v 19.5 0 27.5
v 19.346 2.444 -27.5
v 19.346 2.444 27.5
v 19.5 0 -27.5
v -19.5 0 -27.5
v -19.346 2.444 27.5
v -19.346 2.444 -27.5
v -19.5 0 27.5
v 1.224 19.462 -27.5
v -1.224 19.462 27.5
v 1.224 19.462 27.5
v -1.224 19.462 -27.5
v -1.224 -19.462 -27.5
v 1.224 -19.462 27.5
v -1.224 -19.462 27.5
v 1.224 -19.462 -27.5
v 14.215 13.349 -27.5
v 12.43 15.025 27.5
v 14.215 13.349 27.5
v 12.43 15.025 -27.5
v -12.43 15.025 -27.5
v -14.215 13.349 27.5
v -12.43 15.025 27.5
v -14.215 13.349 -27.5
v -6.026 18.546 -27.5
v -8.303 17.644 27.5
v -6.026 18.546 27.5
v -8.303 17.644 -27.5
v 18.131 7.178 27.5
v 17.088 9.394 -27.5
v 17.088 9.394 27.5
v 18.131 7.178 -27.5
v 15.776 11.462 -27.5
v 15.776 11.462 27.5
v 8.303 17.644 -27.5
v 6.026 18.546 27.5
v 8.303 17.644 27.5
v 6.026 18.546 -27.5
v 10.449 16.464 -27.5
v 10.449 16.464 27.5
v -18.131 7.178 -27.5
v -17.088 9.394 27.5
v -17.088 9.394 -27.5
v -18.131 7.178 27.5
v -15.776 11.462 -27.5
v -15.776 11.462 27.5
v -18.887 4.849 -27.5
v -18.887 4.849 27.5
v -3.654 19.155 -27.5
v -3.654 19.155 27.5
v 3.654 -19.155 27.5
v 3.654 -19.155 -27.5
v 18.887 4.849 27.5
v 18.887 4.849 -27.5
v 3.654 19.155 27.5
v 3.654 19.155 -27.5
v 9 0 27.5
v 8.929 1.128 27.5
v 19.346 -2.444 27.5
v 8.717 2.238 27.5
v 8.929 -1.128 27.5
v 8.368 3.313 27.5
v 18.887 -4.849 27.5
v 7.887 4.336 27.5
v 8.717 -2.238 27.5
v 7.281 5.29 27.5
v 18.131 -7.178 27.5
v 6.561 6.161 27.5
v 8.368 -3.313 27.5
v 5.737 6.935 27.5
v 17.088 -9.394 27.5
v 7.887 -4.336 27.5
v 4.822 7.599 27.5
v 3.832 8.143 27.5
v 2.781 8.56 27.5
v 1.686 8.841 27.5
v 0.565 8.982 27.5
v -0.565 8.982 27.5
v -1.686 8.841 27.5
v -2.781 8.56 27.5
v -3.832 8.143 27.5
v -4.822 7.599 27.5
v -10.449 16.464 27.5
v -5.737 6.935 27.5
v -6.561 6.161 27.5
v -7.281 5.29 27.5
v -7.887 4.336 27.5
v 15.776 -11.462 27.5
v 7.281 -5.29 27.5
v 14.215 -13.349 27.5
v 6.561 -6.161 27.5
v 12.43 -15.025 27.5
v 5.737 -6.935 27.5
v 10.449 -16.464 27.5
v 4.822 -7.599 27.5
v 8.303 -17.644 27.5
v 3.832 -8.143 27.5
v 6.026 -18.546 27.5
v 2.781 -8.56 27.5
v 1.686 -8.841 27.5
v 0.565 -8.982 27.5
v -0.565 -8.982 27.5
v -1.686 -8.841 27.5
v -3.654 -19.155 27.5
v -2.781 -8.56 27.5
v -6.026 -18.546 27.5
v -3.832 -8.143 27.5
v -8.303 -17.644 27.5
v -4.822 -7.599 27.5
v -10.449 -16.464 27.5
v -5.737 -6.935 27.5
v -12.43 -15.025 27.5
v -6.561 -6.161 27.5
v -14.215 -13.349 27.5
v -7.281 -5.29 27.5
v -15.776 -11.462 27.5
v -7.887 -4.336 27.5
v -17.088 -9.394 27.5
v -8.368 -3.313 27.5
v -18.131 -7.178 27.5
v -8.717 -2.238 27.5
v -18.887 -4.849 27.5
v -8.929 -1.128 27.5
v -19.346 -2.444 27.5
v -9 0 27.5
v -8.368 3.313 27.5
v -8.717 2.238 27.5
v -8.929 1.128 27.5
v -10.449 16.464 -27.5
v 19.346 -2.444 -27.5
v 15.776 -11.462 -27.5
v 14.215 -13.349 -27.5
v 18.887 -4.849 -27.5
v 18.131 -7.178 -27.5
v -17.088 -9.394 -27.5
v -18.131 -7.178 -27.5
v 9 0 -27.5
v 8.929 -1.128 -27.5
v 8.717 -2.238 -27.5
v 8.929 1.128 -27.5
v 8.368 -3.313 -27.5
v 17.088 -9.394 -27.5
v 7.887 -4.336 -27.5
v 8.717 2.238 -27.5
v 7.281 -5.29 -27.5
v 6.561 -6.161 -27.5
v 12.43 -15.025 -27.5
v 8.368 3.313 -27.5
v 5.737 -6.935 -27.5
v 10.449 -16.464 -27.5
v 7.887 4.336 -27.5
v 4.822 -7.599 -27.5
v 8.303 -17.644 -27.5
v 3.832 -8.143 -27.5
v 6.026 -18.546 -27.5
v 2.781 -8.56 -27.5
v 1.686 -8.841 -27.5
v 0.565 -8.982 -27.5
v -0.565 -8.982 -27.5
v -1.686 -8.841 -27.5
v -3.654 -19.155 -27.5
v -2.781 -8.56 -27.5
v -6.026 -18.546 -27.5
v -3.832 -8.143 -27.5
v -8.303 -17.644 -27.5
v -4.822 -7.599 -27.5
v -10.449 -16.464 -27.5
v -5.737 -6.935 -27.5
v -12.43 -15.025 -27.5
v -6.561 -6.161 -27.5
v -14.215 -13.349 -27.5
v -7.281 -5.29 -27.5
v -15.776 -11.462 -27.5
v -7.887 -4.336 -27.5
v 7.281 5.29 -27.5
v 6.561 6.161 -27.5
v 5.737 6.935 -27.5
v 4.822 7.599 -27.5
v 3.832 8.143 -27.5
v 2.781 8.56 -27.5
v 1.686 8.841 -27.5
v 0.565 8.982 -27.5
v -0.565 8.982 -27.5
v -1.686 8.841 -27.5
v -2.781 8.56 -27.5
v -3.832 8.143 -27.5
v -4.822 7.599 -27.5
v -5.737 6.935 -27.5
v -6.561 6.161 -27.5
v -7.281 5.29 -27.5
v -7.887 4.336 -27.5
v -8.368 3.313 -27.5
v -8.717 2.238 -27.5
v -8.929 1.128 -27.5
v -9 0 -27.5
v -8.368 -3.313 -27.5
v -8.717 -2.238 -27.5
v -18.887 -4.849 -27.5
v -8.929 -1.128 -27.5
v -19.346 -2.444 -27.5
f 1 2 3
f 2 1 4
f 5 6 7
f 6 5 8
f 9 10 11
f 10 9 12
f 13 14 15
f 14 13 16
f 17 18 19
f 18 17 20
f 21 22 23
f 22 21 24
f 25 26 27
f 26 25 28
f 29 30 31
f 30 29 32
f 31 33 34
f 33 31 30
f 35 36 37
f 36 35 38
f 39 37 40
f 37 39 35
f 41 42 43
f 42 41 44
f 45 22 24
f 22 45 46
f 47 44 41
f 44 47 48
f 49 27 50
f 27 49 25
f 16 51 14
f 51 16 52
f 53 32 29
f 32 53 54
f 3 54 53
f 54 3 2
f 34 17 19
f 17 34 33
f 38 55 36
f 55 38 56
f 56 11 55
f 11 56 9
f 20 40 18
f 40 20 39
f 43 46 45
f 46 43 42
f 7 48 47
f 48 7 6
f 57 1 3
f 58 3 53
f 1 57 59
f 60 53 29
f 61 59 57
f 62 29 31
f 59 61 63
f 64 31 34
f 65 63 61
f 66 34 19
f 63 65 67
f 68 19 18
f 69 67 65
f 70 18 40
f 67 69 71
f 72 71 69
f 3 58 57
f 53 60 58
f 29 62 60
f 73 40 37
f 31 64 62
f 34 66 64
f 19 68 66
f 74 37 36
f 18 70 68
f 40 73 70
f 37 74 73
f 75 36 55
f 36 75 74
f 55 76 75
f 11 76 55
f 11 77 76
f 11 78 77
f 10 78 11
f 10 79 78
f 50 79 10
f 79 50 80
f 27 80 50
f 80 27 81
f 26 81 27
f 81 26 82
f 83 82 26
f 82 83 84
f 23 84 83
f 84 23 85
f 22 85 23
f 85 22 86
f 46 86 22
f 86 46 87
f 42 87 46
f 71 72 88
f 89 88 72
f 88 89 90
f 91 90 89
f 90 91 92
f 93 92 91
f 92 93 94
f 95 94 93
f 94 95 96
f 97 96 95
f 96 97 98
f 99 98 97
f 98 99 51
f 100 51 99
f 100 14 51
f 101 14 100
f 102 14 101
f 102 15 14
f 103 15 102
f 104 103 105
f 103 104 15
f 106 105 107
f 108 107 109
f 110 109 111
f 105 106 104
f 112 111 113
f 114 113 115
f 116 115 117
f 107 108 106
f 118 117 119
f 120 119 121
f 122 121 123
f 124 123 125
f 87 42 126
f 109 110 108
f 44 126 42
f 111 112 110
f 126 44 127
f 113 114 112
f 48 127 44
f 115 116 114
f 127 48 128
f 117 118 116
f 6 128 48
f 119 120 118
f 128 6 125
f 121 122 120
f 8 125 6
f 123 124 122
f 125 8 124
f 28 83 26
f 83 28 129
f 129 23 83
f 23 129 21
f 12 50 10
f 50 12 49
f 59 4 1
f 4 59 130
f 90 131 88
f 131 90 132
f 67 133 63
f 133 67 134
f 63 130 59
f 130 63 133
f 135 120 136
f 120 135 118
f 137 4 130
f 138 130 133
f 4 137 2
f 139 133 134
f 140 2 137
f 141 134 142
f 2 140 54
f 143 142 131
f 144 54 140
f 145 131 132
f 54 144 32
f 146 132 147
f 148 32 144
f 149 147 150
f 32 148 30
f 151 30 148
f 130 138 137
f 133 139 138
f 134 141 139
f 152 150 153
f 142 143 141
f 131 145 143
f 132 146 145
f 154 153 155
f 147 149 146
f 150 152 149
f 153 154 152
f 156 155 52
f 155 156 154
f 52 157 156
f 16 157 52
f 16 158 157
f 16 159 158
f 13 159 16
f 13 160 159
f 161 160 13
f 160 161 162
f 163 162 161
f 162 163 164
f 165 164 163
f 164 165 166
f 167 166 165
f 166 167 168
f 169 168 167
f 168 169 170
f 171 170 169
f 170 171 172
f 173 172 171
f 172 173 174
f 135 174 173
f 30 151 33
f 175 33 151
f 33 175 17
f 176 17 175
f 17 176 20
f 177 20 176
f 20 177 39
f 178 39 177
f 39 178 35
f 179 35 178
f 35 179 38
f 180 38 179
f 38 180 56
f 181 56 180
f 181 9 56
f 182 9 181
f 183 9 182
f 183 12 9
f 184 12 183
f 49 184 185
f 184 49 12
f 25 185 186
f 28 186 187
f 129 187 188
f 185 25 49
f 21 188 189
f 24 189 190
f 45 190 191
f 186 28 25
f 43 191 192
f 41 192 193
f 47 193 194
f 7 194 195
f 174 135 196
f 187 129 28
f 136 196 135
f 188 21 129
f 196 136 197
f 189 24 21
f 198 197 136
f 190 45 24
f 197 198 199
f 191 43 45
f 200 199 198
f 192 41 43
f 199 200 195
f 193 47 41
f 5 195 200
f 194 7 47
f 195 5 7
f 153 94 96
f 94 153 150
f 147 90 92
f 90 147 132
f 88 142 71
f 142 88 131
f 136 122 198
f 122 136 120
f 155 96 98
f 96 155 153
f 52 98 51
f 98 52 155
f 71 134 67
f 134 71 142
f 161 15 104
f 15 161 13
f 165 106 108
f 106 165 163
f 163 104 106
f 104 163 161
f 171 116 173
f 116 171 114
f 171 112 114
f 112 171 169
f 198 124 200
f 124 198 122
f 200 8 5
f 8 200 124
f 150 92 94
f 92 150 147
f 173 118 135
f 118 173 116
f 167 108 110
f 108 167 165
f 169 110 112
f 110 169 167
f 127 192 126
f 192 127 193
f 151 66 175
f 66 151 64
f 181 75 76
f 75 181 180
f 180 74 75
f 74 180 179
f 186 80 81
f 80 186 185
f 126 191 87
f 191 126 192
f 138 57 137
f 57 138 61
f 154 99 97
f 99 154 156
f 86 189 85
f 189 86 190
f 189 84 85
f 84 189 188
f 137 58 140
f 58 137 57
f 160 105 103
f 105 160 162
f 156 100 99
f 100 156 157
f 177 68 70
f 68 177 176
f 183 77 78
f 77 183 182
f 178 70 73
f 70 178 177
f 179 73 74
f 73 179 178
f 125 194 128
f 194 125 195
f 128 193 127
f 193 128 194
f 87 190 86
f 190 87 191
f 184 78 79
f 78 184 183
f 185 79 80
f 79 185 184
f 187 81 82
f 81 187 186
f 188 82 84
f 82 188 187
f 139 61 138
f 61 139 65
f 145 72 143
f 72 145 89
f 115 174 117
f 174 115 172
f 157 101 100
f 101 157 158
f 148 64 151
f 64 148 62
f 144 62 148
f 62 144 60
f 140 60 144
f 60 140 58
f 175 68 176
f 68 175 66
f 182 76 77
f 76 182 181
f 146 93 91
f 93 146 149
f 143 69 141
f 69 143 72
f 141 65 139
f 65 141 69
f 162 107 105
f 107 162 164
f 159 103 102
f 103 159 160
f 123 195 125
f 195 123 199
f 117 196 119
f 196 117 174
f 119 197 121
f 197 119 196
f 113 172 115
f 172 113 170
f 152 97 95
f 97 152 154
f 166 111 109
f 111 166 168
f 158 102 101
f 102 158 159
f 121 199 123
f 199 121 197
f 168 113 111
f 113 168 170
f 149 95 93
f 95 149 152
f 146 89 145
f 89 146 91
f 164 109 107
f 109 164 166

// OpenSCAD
$fn = 50;


difference() {
	union() {
		translate(v = [0, 0, -27.5000000000]) {
			cylinder(h = 55, r = 19.5000000000);
		}
	}
	union() {
		translate(v = [0, 0, -100.0000000000]) {
			cylinder(h = 200, r = 9);
		}
	}
}
